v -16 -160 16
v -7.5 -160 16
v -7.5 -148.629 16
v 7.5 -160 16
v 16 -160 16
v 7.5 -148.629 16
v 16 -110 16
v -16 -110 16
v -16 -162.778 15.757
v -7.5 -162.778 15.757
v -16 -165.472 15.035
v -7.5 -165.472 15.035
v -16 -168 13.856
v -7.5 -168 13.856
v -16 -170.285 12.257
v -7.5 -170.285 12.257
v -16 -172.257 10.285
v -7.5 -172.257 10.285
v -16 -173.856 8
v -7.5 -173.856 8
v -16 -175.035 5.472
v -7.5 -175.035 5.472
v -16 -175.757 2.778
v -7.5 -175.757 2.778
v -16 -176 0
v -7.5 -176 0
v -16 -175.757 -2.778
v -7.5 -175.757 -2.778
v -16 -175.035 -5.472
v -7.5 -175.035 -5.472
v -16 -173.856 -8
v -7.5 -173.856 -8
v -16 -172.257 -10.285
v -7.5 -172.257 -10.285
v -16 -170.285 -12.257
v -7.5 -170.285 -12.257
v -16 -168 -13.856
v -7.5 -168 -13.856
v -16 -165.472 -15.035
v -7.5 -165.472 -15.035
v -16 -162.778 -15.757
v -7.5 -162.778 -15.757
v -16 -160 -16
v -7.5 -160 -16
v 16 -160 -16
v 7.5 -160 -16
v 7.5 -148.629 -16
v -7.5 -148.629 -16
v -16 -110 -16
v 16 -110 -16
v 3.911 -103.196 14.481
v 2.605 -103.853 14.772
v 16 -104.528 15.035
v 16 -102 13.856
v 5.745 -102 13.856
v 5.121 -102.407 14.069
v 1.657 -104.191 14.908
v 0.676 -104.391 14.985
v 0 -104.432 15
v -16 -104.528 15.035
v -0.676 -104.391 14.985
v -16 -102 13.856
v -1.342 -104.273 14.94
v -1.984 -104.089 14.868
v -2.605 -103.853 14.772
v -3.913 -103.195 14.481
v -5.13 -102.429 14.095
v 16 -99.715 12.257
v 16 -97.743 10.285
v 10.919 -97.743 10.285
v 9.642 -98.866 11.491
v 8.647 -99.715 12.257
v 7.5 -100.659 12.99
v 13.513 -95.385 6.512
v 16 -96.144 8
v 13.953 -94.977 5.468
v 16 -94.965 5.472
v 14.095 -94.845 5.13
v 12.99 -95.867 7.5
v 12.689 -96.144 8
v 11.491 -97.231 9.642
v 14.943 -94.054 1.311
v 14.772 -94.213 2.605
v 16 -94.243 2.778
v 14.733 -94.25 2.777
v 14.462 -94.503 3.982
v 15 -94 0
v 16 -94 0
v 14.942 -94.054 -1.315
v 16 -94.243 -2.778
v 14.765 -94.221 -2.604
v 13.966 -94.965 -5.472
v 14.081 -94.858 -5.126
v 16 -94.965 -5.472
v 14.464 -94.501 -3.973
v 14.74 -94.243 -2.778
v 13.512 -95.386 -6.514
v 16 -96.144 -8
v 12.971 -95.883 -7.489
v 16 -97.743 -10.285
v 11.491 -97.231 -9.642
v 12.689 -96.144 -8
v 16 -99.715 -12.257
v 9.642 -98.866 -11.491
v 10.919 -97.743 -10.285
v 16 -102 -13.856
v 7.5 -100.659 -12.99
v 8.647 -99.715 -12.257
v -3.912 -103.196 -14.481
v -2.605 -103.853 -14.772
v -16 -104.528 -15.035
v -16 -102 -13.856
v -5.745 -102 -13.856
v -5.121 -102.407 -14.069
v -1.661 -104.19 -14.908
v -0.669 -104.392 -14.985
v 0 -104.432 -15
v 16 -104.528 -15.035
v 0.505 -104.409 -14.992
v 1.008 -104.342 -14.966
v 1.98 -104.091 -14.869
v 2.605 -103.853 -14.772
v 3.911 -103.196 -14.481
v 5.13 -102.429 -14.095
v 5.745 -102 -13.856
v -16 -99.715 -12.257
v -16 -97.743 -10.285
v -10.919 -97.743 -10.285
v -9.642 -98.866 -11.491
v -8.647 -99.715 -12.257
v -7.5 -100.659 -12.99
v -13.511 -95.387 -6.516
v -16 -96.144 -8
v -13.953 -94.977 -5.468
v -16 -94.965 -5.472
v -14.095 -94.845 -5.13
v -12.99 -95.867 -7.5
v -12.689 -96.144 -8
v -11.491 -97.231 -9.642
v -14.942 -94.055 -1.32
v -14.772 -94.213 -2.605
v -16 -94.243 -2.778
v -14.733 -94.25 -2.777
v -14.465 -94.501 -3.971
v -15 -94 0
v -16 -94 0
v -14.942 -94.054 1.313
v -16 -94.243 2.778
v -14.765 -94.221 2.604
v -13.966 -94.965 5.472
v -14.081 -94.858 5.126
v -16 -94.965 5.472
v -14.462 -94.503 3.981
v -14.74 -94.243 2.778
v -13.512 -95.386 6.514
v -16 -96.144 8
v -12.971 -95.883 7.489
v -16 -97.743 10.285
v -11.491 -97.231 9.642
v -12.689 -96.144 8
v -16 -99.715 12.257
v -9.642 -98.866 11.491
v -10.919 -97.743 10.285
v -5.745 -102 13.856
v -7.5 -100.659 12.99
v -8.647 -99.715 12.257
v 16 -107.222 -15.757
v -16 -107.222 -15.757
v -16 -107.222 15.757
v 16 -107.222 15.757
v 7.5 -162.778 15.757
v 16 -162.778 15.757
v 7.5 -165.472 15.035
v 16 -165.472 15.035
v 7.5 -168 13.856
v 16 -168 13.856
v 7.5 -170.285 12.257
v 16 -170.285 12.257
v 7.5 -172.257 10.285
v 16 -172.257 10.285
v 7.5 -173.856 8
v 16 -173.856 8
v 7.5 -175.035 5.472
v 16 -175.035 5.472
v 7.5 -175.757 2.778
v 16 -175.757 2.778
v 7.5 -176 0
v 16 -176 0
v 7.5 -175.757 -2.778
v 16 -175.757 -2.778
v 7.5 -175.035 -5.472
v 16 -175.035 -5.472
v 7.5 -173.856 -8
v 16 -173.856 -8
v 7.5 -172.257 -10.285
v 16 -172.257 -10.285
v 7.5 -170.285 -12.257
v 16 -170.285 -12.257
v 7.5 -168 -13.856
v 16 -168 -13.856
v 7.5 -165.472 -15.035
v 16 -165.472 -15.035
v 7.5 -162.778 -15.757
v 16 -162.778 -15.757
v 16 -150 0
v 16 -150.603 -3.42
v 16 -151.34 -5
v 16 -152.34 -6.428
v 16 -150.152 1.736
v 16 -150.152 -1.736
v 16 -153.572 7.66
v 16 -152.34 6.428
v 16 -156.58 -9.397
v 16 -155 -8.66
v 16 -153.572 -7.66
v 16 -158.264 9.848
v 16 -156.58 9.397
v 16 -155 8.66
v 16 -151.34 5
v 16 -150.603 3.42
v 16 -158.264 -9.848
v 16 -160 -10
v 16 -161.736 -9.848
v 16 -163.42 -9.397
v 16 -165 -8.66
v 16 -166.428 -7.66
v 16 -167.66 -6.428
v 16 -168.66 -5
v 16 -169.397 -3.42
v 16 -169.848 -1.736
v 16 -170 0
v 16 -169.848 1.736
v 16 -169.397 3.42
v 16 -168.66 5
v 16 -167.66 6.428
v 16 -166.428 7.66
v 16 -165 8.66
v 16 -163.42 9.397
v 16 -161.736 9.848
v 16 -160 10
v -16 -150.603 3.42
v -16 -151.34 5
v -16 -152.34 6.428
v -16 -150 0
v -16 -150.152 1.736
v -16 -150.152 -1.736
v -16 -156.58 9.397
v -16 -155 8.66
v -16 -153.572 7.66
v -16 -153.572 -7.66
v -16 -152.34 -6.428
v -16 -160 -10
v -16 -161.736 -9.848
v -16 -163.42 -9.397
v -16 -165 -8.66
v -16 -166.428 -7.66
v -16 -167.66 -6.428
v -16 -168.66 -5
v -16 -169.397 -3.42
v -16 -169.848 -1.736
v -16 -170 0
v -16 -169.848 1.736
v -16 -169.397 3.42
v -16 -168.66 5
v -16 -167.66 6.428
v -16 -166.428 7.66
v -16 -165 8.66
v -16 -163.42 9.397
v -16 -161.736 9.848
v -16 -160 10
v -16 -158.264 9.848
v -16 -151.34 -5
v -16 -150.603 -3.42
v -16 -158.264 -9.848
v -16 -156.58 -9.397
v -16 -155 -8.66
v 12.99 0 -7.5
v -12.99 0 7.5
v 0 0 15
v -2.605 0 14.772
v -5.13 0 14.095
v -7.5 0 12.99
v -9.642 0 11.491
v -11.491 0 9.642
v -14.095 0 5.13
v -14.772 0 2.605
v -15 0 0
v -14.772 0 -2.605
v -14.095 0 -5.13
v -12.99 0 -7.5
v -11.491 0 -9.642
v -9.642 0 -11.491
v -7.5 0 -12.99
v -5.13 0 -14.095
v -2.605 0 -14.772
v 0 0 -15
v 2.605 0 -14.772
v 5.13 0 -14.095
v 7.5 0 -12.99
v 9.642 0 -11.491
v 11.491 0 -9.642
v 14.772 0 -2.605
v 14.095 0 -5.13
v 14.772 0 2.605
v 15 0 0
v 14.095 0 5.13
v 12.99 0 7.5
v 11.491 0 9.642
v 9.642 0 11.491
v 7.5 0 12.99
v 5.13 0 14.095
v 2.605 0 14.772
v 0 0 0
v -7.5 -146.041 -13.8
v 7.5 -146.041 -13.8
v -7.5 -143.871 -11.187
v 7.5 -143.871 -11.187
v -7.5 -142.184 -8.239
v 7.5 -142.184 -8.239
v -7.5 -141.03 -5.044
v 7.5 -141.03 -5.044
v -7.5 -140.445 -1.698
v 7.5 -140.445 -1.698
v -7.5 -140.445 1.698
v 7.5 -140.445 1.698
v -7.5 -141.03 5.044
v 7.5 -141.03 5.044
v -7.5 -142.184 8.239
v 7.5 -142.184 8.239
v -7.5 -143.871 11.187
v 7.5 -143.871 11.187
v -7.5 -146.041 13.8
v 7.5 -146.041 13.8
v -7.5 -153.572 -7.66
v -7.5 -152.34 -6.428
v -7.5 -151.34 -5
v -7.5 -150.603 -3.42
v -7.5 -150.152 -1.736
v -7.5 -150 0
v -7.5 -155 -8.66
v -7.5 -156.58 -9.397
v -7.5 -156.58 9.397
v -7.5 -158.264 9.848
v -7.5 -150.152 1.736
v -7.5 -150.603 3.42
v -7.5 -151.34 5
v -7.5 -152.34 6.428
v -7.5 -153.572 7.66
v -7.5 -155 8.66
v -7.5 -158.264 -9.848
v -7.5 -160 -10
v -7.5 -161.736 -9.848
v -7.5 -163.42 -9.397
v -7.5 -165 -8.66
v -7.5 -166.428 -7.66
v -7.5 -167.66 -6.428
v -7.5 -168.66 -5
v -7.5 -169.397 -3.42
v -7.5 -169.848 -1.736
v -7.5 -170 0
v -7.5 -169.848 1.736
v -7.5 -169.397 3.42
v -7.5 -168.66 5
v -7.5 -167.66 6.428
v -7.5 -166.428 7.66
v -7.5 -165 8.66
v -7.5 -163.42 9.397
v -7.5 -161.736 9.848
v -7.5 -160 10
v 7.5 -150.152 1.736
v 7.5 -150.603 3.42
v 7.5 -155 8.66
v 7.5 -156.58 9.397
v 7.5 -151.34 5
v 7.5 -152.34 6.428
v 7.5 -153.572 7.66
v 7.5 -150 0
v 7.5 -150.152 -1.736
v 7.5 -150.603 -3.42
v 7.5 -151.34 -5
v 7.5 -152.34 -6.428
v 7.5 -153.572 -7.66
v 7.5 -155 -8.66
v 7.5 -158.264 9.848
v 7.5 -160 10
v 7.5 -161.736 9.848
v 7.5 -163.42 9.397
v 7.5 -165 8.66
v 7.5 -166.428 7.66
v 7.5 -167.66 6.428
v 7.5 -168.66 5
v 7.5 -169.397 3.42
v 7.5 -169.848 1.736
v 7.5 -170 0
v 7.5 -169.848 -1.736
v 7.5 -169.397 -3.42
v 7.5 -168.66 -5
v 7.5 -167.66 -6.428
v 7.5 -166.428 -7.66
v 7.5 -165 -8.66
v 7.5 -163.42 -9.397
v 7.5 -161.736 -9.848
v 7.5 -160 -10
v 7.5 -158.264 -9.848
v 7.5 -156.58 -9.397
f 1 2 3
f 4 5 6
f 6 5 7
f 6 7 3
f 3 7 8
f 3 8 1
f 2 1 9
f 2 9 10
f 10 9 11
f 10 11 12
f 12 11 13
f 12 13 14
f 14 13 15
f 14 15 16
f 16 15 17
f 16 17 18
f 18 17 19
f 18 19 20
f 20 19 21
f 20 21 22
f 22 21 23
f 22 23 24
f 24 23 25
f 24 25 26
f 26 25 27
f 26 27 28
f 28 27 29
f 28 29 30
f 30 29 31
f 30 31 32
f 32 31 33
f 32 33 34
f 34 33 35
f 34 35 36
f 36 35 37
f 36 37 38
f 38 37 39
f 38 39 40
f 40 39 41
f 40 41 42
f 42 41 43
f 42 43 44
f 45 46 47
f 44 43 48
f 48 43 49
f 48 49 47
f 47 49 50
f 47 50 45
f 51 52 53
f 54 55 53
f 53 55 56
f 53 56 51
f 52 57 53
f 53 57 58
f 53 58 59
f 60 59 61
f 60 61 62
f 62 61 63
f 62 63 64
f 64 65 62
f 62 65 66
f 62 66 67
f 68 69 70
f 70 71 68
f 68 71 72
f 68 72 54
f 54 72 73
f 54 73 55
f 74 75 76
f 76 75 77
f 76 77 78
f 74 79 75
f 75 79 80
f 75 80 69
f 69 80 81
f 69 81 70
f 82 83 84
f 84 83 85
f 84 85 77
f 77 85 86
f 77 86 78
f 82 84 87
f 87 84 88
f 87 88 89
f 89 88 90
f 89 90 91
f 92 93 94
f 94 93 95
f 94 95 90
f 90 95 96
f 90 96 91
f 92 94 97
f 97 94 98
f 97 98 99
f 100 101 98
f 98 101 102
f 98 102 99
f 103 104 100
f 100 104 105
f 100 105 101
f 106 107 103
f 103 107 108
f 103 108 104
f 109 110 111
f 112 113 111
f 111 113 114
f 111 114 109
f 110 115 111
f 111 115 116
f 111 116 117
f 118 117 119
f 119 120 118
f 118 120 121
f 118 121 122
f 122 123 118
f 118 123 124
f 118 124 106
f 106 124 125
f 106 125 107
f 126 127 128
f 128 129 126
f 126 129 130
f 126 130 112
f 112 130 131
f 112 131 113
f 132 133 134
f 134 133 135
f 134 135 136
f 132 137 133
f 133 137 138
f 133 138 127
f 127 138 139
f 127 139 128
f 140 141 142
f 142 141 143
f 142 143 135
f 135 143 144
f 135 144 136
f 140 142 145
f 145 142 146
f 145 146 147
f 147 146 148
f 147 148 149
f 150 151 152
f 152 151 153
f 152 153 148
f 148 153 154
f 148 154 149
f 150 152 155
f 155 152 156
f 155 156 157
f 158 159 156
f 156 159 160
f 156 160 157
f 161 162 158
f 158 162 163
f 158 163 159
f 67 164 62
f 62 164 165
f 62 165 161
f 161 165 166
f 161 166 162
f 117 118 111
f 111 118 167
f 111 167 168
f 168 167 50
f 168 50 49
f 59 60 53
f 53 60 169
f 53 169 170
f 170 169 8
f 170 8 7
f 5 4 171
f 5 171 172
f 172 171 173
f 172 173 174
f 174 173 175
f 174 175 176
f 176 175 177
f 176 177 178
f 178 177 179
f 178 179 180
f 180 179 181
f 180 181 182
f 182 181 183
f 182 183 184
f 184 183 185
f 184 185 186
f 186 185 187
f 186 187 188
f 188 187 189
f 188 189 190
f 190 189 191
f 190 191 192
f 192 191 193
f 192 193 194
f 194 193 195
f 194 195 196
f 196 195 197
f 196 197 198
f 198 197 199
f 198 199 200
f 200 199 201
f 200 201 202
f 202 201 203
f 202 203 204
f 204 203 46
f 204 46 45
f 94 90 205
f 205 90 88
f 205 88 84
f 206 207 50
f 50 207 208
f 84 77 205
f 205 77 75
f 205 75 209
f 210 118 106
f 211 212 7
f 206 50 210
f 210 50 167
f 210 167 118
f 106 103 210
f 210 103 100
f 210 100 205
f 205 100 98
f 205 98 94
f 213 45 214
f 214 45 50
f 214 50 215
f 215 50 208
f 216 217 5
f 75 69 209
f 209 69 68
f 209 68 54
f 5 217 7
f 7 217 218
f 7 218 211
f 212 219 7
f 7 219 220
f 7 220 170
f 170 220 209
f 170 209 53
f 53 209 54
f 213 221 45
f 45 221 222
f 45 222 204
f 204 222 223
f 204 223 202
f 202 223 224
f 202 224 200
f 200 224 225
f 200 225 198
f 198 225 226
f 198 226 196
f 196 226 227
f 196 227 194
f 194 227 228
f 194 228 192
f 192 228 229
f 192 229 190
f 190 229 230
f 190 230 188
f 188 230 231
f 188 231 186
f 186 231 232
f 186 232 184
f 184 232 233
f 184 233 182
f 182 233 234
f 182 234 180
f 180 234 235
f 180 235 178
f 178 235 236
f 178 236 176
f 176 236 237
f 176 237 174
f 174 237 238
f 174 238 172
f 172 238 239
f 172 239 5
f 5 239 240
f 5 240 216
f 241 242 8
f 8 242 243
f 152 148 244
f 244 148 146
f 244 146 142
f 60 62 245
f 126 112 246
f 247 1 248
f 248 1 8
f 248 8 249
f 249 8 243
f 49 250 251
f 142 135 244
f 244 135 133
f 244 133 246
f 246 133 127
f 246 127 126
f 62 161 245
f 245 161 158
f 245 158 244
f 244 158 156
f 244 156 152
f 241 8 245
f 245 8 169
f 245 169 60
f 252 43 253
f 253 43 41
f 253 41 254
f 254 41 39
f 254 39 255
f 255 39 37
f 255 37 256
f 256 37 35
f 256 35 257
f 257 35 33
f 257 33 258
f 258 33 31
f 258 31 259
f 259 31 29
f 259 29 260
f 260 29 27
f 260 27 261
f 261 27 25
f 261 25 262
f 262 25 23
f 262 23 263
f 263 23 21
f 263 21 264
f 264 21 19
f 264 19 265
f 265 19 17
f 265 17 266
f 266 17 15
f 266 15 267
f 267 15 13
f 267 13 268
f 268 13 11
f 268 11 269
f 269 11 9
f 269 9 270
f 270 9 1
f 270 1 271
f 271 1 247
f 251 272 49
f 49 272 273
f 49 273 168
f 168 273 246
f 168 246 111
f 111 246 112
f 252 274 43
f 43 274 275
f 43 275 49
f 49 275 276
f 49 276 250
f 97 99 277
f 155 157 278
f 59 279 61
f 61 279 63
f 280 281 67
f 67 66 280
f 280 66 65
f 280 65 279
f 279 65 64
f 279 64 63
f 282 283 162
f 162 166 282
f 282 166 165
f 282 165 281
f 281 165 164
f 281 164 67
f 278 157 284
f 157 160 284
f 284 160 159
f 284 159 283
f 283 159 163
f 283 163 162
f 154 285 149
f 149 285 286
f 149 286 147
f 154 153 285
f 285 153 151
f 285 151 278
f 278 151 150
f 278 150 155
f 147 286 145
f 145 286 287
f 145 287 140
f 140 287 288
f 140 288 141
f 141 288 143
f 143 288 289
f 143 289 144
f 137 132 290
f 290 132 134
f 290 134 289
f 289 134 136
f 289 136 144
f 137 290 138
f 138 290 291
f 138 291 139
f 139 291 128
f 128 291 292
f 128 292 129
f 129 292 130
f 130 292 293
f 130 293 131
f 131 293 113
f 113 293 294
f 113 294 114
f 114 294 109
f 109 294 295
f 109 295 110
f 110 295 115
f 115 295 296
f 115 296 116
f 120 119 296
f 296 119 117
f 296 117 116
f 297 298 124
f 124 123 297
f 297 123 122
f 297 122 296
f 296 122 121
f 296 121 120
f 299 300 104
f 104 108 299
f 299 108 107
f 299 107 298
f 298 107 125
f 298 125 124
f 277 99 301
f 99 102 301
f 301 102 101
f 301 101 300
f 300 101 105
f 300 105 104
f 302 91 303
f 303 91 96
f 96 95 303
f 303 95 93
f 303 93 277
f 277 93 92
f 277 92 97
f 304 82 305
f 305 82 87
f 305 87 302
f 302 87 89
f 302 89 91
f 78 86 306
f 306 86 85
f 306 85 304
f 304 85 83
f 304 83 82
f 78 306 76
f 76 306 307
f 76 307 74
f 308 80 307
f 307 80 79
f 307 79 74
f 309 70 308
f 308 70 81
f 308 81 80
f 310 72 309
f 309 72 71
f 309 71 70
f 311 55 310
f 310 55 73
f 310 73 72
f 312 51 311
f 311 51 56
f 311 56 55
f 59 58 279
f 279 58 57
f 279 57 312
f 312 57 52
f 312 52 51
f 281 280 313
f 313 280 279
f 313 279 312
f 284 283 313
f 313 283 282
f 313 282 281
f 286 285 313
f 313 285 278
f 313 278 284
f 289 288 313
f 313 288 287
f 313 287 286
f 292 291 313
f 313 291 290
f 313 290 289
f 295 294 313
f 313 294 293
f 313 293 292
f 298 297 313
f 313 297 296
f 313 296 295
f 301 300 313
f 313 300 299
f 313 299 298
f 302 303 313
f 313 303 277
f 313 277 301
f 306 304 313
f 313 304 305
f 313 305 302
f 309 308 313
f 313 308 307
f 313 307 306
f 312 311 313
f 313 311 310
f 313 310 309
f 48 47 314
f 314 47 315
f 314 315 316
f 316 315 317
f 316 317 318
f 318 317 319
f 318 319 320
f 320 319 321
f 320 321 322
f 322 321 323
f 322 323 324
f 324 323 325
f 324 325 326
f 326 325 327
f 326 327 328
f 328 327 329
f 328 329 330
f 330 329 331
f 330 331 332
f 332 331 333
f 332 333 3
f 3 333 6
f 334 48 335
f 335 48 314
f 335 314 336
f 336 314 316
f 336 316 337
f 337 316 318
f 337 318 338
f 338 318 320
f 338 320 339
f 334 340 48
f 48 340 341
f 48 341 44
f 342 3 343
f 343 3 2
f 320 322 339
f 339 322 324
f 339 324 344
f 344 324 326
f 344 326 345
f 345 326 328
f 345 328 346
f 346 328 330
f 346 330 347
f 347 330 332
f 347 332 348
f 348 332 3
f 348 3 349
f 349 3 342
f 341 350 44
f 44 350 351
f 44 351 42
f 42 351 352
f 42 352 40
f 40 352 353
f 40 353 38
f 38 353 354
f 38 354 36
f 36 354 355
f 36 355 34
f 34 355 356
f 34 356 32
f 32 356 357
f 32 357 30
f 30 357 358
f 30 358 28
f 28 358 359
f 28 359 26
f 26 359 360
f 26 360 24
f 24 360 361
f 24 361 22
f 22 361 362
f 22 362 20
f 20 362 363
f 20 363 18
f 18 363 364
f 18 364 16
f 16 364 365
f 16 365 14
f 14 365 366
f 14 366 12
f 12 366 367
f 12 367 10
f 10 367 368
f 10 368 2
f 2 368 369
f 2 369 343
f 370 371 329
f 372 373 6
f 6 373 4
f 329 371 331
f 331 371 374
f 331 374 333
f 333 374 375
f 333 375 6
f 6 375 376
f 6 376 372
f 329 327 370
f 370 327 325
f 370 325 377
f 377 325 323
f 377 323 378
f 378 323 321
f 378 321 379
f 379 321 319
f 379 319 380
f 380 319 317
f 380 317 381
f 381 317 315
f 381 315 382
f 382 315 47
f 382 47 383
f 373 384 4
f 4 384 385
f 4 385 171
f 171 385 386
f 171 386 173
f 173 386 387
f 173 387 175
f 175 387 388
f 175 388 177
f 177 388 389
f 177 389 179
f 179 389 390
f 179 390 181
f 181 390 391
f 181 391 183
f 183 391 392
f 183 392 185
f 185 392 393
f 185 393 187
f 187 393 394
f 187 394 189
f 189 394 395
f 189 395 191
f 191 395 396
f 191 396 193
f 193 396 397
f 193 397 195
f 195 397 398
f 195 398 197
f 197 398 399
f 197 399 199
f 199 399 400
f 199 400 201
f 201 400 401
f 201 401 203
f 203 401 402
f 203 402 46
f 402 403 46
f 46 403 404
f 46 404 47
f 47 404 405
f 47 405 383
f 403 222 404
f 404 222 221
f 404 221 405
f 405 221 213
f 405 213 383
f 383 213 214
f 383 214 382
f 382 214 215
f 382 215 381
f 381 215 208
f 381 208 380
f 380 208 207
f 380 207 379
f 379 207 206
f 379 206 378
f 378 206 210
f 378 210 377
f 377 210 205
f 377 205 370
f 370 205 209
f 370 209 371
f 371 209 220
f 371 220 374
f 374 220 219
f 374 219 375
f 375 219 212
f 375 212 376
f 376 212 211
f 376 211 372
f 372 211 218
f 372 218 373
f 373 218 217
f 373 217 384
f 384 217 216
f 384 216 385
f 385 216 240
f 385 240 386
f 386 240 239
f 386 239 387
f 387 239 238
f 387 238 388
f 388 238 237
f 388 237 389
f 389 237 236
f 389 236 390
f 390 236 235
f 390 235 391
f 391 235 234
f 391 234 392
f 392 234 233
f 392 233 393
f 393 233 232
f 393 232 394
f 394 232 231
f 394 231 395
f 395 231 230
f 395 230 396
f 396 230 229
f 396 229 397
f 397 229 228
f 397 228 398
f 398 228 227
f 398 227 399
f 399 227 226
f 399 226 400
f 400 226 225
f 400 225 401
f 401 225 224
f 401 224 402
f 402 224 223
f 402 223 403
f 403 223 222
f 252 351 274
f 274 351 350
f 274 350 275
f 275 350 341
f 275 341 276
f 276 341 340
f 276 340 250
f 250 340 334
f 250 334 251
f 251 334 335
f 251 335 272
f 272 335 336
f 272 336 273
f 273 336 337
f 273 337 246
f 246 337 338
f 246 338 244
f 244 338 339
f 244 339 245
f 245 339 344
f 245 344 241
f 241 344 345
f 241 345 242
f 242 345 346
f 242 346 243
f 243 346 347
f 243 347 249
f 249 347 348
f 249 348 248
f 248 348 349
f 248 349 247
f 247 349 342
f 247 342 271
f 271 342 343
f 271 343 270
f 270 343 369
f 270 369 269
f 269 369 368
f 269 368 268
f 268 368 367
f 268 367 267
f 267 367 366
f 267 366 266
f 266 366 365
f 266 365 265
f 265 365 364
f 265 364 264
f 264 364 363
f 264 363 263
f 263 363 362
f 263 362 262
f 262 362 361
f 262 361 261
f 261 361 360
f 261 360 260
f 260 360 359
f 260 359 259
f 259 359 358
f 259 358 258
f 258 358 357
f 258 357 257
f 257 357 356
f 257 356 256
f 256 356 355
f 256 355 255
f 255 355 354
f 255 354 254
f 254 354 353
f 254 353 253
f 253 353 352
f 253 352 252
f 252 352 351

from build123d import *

# Parameters (mm, degrees)
SKETCH_19_W         = 15
SKETCH_19_H         = 110
EXTRUDE_11_DEPTH    = 16
SKETCH_23_R         = 19.628880498
CUT_EXTRUDE_4_DEPTH = 7.5
SKETCH_24_R         = 10
CUT_EXTRUDE_5_DEPTH = 27.5


with BuildPart() as part:
    # 草图19 → 旋转1 (revolve)
    with BuildSketch(Plane(origin=(0, 0, 0), x_dir=(0, 0, -1), z_dir=(1, 0, 0))):
        with Locations((-7.5, -55)):
            Rectangle(SKETCH_19_W, SKETCH_19_H)
    revolve(axis=Axis((0, 0, 0), (0, -1, 0)))

    # 草图22 → 凸台-拉伸11 (add, symmetric)
    with BuildSketch(Plane(origin=(0, 0, 0), x_dir=(0, 0, -1), z_dir=(1, 0, 0))):
        with BuildLine():
            Line((16, -110), (16, -160))
            ThreePointArc((16, -160), (0, -176), (-16, -160))
            Line((-16, -160), (-16, -110))
            ThreePointArc((-16, -110), (0, -94), (16, -110))
        make_face()
    extrude(amount=EXTRUDE_11_DEPTH, both=True)

    # 草图23 → 切除-拉伸4 (cut, symmetric)
    with BuildSketch(Plane(origin=(0, 0, 0), x_dir=(0, 0, -1), z_dir=(1, 0, 0))):
        with Locations((0, -160)):
            Circle(SKETCH_23_R)
    extrude(amount=CUT_EXTRUDE_4_DEPTH, both=True, mode=Mode.SUBTRACT)

    # 草图24 → 切除-拉伸5 (cut, symmetric)
    with BuildSketch(Plane(origin=(0, 0, 0), x_dir=(0, 0, -1), z_dir=(1, 0, 0))):
        with Locations((0, -160)):
            Circle(SKETCH_24_R)
    extrude(amount=CUT_EXTRUDE_5_DEPTH, both=True, mode=Mode.SUBTRACT)


solid = part.part
